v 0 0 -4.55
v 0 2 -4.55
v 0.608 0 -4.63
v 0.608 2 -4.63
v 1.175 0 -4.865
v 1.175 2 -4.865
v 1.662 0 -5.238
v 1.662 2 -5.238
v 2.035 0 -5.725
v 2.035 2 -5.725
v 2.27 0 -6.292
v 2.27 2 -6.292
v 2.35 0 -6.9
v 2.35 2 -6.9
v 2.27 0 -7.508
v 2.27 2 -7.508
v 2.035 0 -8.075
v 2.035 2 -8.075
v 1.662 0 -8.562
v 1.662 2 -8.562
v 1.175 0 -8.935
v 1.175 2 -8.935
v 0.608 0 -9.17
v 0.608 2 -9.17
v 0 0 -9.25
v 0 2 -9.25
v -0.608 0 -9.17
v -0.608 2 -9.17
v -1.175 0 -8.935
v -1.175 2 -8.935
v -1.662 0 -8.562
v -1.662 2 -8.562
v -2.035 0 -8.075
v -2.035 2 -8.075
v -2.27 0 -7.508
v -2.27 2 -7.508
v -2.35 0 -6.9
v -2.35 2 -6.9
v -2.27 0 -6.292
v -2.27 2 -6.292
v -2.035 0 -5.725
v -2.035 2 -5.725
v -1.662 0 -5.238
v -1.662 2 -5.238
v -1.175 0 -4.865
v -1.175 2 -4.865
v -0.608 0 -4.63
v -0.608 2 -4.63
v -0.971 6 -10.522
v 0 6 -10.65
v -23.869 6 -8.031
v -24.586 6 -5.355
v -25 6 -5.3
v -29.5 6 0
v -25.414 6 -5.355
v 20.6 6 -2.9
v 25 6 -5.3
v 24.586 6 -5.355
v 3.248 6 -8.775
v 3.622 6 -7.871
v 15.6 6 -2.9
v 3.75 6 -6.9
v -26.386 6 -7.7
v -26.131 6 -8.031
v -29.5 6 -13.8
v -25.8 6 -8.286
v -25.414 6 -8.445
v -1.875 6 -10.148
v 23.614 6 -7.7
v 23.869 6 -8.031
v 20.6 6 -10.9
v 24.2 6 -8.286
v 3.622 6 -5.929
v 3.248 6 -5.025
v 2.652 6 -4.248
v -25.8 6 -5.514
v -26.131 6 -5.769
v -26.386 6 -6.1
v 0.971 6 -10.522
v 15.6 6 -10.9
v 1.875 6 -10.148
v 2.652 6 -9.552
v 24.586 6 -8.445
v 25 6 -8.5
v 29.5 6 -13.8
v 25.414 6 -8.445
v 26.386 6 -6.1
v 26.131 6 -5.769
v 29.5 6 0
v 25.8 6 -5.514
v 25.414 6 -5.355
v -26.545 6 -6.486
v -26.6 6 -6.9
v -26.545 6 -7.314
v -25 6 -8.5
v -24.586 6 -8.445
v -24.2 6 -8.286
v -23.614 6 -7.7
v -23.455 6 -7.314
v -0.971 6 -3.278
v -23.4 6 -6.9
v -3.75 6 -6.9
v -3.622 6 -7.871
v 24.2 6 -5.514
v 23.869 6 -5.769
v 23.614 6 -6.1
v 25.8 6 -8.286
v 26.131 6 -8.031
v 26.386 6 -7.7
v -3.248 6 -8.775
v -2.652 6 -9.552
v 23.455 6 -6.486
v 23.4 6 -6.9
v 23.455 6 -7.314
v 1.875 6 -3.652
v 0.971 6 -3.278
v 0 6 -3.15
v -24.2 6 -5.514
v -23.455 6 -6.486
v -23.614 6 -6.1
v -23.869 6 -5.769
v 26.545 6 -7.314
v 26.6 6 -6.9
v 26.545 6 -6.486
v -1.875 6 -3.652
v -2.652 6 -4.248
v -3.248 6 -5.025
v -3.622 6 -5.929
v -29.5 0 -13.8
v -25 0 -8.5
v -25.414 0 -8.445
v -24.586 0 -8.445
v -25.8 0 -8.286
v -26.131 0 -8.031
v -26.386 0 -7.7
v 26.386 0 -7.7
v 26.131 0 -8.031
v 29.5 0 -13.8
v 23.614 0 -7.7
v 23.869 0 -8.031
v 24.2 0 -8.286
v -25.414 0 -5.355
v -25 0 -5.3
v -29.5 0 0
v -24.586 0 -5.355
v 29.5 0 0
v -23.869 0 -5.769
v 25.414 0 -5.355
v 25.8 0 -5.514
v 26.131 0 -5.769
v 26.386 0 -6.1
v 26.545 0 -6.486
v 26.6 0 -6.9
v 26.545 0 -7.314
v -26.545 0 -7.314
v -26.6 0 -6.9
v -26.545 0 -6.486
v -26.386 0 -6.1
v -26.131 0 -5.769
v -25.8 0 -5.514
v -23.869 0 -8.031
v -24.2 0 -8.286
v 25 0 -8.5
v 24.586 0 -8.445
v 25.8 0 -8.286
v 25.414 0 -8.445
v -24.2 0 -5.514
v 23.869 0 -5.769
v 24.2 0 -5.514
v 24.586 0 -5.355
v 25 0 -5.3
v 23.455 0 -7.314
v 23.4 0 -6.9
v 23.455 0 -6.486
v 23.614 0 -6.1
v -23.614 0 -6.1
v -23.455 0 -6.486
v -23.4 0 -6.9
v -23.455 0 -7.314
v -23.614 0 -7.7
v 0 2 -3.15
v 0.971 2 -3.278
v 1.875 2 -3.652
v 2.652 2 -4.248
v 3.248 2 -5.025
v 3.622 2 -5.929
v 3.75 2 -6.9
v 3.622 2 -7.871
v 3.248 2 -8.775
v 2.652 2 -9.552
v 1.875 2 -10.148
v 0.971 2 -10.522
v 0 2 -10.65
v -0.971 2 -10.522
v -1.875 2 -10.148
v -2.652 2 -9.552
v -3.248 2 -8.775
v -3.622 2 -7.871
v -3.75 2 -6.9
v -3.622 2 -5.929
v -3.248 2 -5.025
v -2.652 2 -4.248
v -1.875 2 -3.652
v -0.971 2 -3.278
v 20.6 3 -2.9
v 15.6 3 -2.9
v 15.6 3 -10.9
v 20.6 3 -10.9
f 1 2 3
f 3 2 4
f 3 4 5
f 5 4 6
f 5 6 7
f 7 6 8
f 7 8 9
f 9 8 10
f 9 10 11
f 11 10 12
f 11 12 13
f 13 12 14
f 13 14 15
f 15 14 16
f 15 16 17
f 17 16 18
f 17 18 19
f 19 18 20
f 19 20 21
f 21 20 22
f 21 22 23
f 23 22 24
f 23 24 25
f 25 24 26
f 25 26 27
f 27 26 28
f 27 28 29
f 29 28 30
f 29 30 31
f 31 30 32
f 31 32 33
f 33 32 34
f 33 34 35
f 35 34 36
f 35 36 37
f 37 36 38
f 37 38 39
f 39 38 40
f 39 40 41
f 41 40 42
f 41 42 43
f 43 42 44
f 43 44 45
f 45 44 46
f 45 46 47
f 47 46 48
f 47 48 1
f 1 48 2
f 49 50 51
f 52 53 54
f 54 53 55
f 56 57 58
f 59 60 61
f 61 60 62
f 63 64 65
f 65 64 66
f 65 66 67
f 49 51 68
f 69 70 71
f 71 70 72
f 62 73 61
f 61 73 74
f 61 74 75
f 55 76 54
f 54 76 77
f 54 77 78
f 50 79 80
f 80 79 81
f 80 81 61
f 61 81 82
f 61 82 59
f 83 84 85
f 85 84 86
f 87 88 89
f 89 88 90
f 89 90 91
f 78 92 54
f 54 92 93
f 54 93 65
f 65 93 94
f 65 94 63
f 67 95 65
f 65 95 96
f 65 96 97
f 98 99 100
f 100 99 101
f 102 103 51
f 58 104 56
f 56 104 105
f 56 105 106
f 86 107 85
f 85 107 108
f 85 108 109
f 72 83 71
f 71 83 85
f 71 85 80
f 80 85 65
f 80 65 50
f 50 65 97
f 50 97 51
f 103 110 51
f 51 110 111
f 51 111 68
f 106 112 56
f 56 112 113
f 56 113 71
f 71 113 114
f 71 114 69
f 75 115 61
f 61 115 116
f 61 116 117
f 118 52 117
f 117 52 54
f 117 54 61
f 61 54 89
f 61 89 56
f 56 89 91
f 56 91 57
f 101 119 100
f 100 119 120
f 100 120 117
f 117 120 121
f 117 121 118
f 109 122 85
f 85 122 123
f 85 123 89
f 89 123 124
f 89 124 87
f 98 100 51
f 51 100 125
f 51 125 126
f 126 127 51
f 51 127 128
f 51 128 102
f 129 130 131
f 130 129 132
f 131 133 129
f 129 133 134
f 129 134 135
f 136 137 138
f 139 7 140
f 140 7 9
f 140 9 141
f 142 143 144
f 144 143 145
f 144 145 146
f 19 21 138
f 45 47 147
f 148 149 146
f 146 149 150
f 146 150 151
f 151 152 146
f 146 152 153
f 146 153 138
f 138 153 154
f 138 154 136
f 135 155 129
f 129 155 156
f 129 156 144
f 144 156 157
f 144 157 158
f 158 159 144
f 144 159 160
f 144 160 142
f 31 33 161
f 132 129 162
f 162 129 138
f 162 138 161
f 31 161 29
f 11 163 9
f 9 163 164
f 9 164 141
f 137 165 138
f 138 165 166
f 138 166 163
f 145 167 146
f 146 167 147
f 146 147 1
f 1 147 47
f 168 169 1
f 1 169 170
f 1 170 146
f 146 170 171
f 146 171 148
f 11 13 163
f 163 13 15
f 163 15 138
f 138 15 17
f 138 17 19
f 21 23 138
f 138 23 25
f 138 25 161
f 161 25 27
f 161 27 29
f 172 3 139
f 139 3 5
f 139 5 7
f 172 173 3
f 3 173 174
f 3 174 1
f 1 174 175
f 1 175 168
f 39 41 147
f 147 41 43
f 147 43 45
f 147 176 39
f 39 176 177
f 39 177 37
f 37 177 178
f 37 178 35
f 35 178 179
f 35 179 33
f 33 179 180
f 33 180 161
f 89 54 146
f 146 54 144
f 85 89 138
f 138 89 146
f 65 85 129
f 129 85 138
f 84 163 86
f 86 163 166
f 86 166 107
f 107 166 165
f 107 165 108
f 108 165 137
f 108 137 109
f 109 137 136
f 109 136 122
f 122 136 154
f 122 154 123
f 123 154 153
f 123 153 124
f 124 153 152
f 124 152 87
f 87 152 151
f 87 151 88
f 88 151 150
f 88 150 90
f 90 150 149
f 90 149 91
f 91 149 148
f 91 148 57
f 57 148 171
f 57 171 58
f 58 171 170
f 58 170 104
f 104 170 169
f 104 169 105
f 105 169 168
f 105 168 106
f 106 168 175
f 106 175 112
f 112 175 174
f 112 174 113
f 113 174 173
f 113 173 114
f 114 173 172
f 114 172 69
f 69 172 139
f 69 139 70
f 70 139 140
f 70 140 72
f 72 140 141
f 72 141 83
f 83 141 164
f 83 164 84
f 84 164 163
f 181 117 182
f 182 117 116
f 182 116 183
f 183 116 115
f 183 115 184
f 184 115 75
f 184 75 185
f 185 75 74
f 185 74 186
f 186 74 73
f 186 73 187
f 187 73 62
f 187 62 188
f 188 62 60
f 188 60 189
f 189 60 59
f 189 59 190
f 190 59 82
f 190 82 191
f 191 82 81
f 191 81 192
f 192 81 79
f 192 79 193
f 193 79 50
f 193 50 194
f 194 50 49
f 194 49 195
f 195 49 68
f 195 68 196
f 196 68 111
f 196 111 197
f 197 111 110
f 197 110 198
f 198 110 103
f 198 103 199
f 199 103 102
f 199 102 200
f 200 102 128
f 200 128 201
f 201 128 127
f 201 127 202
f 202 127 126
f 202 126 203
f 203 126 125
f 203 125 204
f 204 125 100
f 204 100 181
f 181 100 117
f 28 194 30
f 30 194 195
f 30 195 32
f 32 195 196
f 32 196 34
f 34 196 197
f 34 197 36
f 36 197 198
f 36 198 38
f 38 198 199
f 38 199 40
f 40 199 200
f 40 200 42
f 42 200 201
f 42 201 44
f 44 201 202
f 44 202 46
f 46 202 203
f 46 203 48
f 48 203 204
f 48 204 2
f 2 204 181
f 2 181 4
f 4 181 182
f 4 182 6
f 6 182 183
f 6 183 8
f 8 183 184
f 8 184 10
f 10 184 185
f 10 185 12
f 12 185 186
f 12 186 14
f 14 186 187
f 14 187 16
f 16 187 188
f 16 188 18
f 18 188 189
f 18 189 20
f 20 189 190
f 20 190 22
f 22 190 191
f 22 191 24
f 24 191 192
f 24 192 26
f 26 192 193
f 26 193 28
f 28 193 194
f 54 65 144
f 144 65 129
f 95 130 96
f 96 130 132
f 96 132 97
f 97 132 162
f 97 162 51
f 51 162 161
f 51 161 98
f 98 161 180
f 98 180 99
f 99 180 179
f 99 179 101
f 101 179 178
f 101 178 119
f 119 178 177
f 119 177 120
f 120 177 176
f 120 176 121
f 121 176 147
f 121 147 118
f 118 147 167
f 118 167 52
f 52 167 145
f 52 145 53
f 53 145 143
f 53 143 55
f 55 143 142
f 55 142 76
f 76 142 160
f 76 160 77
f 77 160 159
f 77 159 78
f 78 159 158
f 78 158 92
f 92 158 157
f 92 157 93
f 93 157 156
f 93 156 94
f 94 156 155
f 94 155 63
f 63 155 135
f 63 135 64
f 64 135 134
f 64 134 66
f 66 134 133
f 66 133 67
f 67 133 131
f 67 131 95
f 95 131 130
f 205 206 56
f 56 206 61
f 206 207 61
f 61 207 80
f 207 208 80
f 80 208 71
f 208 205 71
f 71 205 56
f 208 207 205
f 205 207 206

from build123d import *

# Parameters (mm, degrees)
ESQUISSE1_W             = 29.5
ESQUISSE1_H             = 13.8
ESQUISSE1_R             = 1.6
BOSS_EXTRU_1_DEPTH      = 6
ESQUISSE2_R             = 2.35
ENL_V_MAT_EXTRU_1_DEPTH = 7
ESQUISSE3_R             = 3.75
ENL_V_MAT_EXTRU_2_DEPTH = 4
ESQUISSE5_W             = 5
ESQUISSE5_H             = 8
ENL_V_MAT_EXTRU_3_DEPTH = 3


with BuildPart() as part:
    # Esquisse1 → Boss.-Extru.1 (new body)
    with BuildSketch(Plane(origin=(0, 0, 0), x_dir=(1, 0, 0), z_dir=(0, 1, 0))):
        with Locations((14.75, 6.9)):
            Rectangle(ESQUISSE1_W, ESQUISSE1_H)
        with Locations((25, 6.9)):
            Circle(ESQUISSE1_R, mode=Mode.SUBTRACT)
    extrude(amount=BOSS_EXTRU_1_DEPTH)

    # Esquisse2 → Enlèv. mat.-Extru.1 (cut, through all)
    with BuildSketch(Plane(origin=(0, 6, 0), x_dir=(1, 0, 0), z_dir=(0, 1, 0))):
        with Locations((0, 6.9)):
            Circle(ESQUISSE2_R)
    extrude(amount=-ENL_V_MAT_EXTRU_1_DEPTH, mode=Mode.SUBTRACT)

    # Esquisse3 → Enlèv. mat.-Extru.2 (cut)
    with BuildSketch(Plane(origin=(0, 6, 0), x_dir=(1, 0, 0), z_dir=(0, 1, 0))):
        with Locations((0, 6.9)):
            Circle(ESQUISSE3_R)
    extrude(amount=-ENL_V_MAT_EXTRU_2_DEPTH, mode=Mode.SUBTRACT)

    # Symétrie1: part across plane


with BuildPart() as part_1:
    add(part.part)
    add(part.part.mirror(Plane(origin=(0, 6, 0), x_dir=(0, 0, 1), z_dir=(1, 0, 0))))

    # Esquisse5 → Enlèv. mat.-Extru.3 (cut)
    with BuildSketch(Plane.XZ.offset(-6)):
        with Locations((18.1, -6.9)):
            Rectangle(ESQUISSE5_W, ESQUISSE5_H)
    extrude(amount=ENL_V_MAT_EXTRU_3_DEPTH, mode=Mode.SUBTRACT)


solid = part_1.part
